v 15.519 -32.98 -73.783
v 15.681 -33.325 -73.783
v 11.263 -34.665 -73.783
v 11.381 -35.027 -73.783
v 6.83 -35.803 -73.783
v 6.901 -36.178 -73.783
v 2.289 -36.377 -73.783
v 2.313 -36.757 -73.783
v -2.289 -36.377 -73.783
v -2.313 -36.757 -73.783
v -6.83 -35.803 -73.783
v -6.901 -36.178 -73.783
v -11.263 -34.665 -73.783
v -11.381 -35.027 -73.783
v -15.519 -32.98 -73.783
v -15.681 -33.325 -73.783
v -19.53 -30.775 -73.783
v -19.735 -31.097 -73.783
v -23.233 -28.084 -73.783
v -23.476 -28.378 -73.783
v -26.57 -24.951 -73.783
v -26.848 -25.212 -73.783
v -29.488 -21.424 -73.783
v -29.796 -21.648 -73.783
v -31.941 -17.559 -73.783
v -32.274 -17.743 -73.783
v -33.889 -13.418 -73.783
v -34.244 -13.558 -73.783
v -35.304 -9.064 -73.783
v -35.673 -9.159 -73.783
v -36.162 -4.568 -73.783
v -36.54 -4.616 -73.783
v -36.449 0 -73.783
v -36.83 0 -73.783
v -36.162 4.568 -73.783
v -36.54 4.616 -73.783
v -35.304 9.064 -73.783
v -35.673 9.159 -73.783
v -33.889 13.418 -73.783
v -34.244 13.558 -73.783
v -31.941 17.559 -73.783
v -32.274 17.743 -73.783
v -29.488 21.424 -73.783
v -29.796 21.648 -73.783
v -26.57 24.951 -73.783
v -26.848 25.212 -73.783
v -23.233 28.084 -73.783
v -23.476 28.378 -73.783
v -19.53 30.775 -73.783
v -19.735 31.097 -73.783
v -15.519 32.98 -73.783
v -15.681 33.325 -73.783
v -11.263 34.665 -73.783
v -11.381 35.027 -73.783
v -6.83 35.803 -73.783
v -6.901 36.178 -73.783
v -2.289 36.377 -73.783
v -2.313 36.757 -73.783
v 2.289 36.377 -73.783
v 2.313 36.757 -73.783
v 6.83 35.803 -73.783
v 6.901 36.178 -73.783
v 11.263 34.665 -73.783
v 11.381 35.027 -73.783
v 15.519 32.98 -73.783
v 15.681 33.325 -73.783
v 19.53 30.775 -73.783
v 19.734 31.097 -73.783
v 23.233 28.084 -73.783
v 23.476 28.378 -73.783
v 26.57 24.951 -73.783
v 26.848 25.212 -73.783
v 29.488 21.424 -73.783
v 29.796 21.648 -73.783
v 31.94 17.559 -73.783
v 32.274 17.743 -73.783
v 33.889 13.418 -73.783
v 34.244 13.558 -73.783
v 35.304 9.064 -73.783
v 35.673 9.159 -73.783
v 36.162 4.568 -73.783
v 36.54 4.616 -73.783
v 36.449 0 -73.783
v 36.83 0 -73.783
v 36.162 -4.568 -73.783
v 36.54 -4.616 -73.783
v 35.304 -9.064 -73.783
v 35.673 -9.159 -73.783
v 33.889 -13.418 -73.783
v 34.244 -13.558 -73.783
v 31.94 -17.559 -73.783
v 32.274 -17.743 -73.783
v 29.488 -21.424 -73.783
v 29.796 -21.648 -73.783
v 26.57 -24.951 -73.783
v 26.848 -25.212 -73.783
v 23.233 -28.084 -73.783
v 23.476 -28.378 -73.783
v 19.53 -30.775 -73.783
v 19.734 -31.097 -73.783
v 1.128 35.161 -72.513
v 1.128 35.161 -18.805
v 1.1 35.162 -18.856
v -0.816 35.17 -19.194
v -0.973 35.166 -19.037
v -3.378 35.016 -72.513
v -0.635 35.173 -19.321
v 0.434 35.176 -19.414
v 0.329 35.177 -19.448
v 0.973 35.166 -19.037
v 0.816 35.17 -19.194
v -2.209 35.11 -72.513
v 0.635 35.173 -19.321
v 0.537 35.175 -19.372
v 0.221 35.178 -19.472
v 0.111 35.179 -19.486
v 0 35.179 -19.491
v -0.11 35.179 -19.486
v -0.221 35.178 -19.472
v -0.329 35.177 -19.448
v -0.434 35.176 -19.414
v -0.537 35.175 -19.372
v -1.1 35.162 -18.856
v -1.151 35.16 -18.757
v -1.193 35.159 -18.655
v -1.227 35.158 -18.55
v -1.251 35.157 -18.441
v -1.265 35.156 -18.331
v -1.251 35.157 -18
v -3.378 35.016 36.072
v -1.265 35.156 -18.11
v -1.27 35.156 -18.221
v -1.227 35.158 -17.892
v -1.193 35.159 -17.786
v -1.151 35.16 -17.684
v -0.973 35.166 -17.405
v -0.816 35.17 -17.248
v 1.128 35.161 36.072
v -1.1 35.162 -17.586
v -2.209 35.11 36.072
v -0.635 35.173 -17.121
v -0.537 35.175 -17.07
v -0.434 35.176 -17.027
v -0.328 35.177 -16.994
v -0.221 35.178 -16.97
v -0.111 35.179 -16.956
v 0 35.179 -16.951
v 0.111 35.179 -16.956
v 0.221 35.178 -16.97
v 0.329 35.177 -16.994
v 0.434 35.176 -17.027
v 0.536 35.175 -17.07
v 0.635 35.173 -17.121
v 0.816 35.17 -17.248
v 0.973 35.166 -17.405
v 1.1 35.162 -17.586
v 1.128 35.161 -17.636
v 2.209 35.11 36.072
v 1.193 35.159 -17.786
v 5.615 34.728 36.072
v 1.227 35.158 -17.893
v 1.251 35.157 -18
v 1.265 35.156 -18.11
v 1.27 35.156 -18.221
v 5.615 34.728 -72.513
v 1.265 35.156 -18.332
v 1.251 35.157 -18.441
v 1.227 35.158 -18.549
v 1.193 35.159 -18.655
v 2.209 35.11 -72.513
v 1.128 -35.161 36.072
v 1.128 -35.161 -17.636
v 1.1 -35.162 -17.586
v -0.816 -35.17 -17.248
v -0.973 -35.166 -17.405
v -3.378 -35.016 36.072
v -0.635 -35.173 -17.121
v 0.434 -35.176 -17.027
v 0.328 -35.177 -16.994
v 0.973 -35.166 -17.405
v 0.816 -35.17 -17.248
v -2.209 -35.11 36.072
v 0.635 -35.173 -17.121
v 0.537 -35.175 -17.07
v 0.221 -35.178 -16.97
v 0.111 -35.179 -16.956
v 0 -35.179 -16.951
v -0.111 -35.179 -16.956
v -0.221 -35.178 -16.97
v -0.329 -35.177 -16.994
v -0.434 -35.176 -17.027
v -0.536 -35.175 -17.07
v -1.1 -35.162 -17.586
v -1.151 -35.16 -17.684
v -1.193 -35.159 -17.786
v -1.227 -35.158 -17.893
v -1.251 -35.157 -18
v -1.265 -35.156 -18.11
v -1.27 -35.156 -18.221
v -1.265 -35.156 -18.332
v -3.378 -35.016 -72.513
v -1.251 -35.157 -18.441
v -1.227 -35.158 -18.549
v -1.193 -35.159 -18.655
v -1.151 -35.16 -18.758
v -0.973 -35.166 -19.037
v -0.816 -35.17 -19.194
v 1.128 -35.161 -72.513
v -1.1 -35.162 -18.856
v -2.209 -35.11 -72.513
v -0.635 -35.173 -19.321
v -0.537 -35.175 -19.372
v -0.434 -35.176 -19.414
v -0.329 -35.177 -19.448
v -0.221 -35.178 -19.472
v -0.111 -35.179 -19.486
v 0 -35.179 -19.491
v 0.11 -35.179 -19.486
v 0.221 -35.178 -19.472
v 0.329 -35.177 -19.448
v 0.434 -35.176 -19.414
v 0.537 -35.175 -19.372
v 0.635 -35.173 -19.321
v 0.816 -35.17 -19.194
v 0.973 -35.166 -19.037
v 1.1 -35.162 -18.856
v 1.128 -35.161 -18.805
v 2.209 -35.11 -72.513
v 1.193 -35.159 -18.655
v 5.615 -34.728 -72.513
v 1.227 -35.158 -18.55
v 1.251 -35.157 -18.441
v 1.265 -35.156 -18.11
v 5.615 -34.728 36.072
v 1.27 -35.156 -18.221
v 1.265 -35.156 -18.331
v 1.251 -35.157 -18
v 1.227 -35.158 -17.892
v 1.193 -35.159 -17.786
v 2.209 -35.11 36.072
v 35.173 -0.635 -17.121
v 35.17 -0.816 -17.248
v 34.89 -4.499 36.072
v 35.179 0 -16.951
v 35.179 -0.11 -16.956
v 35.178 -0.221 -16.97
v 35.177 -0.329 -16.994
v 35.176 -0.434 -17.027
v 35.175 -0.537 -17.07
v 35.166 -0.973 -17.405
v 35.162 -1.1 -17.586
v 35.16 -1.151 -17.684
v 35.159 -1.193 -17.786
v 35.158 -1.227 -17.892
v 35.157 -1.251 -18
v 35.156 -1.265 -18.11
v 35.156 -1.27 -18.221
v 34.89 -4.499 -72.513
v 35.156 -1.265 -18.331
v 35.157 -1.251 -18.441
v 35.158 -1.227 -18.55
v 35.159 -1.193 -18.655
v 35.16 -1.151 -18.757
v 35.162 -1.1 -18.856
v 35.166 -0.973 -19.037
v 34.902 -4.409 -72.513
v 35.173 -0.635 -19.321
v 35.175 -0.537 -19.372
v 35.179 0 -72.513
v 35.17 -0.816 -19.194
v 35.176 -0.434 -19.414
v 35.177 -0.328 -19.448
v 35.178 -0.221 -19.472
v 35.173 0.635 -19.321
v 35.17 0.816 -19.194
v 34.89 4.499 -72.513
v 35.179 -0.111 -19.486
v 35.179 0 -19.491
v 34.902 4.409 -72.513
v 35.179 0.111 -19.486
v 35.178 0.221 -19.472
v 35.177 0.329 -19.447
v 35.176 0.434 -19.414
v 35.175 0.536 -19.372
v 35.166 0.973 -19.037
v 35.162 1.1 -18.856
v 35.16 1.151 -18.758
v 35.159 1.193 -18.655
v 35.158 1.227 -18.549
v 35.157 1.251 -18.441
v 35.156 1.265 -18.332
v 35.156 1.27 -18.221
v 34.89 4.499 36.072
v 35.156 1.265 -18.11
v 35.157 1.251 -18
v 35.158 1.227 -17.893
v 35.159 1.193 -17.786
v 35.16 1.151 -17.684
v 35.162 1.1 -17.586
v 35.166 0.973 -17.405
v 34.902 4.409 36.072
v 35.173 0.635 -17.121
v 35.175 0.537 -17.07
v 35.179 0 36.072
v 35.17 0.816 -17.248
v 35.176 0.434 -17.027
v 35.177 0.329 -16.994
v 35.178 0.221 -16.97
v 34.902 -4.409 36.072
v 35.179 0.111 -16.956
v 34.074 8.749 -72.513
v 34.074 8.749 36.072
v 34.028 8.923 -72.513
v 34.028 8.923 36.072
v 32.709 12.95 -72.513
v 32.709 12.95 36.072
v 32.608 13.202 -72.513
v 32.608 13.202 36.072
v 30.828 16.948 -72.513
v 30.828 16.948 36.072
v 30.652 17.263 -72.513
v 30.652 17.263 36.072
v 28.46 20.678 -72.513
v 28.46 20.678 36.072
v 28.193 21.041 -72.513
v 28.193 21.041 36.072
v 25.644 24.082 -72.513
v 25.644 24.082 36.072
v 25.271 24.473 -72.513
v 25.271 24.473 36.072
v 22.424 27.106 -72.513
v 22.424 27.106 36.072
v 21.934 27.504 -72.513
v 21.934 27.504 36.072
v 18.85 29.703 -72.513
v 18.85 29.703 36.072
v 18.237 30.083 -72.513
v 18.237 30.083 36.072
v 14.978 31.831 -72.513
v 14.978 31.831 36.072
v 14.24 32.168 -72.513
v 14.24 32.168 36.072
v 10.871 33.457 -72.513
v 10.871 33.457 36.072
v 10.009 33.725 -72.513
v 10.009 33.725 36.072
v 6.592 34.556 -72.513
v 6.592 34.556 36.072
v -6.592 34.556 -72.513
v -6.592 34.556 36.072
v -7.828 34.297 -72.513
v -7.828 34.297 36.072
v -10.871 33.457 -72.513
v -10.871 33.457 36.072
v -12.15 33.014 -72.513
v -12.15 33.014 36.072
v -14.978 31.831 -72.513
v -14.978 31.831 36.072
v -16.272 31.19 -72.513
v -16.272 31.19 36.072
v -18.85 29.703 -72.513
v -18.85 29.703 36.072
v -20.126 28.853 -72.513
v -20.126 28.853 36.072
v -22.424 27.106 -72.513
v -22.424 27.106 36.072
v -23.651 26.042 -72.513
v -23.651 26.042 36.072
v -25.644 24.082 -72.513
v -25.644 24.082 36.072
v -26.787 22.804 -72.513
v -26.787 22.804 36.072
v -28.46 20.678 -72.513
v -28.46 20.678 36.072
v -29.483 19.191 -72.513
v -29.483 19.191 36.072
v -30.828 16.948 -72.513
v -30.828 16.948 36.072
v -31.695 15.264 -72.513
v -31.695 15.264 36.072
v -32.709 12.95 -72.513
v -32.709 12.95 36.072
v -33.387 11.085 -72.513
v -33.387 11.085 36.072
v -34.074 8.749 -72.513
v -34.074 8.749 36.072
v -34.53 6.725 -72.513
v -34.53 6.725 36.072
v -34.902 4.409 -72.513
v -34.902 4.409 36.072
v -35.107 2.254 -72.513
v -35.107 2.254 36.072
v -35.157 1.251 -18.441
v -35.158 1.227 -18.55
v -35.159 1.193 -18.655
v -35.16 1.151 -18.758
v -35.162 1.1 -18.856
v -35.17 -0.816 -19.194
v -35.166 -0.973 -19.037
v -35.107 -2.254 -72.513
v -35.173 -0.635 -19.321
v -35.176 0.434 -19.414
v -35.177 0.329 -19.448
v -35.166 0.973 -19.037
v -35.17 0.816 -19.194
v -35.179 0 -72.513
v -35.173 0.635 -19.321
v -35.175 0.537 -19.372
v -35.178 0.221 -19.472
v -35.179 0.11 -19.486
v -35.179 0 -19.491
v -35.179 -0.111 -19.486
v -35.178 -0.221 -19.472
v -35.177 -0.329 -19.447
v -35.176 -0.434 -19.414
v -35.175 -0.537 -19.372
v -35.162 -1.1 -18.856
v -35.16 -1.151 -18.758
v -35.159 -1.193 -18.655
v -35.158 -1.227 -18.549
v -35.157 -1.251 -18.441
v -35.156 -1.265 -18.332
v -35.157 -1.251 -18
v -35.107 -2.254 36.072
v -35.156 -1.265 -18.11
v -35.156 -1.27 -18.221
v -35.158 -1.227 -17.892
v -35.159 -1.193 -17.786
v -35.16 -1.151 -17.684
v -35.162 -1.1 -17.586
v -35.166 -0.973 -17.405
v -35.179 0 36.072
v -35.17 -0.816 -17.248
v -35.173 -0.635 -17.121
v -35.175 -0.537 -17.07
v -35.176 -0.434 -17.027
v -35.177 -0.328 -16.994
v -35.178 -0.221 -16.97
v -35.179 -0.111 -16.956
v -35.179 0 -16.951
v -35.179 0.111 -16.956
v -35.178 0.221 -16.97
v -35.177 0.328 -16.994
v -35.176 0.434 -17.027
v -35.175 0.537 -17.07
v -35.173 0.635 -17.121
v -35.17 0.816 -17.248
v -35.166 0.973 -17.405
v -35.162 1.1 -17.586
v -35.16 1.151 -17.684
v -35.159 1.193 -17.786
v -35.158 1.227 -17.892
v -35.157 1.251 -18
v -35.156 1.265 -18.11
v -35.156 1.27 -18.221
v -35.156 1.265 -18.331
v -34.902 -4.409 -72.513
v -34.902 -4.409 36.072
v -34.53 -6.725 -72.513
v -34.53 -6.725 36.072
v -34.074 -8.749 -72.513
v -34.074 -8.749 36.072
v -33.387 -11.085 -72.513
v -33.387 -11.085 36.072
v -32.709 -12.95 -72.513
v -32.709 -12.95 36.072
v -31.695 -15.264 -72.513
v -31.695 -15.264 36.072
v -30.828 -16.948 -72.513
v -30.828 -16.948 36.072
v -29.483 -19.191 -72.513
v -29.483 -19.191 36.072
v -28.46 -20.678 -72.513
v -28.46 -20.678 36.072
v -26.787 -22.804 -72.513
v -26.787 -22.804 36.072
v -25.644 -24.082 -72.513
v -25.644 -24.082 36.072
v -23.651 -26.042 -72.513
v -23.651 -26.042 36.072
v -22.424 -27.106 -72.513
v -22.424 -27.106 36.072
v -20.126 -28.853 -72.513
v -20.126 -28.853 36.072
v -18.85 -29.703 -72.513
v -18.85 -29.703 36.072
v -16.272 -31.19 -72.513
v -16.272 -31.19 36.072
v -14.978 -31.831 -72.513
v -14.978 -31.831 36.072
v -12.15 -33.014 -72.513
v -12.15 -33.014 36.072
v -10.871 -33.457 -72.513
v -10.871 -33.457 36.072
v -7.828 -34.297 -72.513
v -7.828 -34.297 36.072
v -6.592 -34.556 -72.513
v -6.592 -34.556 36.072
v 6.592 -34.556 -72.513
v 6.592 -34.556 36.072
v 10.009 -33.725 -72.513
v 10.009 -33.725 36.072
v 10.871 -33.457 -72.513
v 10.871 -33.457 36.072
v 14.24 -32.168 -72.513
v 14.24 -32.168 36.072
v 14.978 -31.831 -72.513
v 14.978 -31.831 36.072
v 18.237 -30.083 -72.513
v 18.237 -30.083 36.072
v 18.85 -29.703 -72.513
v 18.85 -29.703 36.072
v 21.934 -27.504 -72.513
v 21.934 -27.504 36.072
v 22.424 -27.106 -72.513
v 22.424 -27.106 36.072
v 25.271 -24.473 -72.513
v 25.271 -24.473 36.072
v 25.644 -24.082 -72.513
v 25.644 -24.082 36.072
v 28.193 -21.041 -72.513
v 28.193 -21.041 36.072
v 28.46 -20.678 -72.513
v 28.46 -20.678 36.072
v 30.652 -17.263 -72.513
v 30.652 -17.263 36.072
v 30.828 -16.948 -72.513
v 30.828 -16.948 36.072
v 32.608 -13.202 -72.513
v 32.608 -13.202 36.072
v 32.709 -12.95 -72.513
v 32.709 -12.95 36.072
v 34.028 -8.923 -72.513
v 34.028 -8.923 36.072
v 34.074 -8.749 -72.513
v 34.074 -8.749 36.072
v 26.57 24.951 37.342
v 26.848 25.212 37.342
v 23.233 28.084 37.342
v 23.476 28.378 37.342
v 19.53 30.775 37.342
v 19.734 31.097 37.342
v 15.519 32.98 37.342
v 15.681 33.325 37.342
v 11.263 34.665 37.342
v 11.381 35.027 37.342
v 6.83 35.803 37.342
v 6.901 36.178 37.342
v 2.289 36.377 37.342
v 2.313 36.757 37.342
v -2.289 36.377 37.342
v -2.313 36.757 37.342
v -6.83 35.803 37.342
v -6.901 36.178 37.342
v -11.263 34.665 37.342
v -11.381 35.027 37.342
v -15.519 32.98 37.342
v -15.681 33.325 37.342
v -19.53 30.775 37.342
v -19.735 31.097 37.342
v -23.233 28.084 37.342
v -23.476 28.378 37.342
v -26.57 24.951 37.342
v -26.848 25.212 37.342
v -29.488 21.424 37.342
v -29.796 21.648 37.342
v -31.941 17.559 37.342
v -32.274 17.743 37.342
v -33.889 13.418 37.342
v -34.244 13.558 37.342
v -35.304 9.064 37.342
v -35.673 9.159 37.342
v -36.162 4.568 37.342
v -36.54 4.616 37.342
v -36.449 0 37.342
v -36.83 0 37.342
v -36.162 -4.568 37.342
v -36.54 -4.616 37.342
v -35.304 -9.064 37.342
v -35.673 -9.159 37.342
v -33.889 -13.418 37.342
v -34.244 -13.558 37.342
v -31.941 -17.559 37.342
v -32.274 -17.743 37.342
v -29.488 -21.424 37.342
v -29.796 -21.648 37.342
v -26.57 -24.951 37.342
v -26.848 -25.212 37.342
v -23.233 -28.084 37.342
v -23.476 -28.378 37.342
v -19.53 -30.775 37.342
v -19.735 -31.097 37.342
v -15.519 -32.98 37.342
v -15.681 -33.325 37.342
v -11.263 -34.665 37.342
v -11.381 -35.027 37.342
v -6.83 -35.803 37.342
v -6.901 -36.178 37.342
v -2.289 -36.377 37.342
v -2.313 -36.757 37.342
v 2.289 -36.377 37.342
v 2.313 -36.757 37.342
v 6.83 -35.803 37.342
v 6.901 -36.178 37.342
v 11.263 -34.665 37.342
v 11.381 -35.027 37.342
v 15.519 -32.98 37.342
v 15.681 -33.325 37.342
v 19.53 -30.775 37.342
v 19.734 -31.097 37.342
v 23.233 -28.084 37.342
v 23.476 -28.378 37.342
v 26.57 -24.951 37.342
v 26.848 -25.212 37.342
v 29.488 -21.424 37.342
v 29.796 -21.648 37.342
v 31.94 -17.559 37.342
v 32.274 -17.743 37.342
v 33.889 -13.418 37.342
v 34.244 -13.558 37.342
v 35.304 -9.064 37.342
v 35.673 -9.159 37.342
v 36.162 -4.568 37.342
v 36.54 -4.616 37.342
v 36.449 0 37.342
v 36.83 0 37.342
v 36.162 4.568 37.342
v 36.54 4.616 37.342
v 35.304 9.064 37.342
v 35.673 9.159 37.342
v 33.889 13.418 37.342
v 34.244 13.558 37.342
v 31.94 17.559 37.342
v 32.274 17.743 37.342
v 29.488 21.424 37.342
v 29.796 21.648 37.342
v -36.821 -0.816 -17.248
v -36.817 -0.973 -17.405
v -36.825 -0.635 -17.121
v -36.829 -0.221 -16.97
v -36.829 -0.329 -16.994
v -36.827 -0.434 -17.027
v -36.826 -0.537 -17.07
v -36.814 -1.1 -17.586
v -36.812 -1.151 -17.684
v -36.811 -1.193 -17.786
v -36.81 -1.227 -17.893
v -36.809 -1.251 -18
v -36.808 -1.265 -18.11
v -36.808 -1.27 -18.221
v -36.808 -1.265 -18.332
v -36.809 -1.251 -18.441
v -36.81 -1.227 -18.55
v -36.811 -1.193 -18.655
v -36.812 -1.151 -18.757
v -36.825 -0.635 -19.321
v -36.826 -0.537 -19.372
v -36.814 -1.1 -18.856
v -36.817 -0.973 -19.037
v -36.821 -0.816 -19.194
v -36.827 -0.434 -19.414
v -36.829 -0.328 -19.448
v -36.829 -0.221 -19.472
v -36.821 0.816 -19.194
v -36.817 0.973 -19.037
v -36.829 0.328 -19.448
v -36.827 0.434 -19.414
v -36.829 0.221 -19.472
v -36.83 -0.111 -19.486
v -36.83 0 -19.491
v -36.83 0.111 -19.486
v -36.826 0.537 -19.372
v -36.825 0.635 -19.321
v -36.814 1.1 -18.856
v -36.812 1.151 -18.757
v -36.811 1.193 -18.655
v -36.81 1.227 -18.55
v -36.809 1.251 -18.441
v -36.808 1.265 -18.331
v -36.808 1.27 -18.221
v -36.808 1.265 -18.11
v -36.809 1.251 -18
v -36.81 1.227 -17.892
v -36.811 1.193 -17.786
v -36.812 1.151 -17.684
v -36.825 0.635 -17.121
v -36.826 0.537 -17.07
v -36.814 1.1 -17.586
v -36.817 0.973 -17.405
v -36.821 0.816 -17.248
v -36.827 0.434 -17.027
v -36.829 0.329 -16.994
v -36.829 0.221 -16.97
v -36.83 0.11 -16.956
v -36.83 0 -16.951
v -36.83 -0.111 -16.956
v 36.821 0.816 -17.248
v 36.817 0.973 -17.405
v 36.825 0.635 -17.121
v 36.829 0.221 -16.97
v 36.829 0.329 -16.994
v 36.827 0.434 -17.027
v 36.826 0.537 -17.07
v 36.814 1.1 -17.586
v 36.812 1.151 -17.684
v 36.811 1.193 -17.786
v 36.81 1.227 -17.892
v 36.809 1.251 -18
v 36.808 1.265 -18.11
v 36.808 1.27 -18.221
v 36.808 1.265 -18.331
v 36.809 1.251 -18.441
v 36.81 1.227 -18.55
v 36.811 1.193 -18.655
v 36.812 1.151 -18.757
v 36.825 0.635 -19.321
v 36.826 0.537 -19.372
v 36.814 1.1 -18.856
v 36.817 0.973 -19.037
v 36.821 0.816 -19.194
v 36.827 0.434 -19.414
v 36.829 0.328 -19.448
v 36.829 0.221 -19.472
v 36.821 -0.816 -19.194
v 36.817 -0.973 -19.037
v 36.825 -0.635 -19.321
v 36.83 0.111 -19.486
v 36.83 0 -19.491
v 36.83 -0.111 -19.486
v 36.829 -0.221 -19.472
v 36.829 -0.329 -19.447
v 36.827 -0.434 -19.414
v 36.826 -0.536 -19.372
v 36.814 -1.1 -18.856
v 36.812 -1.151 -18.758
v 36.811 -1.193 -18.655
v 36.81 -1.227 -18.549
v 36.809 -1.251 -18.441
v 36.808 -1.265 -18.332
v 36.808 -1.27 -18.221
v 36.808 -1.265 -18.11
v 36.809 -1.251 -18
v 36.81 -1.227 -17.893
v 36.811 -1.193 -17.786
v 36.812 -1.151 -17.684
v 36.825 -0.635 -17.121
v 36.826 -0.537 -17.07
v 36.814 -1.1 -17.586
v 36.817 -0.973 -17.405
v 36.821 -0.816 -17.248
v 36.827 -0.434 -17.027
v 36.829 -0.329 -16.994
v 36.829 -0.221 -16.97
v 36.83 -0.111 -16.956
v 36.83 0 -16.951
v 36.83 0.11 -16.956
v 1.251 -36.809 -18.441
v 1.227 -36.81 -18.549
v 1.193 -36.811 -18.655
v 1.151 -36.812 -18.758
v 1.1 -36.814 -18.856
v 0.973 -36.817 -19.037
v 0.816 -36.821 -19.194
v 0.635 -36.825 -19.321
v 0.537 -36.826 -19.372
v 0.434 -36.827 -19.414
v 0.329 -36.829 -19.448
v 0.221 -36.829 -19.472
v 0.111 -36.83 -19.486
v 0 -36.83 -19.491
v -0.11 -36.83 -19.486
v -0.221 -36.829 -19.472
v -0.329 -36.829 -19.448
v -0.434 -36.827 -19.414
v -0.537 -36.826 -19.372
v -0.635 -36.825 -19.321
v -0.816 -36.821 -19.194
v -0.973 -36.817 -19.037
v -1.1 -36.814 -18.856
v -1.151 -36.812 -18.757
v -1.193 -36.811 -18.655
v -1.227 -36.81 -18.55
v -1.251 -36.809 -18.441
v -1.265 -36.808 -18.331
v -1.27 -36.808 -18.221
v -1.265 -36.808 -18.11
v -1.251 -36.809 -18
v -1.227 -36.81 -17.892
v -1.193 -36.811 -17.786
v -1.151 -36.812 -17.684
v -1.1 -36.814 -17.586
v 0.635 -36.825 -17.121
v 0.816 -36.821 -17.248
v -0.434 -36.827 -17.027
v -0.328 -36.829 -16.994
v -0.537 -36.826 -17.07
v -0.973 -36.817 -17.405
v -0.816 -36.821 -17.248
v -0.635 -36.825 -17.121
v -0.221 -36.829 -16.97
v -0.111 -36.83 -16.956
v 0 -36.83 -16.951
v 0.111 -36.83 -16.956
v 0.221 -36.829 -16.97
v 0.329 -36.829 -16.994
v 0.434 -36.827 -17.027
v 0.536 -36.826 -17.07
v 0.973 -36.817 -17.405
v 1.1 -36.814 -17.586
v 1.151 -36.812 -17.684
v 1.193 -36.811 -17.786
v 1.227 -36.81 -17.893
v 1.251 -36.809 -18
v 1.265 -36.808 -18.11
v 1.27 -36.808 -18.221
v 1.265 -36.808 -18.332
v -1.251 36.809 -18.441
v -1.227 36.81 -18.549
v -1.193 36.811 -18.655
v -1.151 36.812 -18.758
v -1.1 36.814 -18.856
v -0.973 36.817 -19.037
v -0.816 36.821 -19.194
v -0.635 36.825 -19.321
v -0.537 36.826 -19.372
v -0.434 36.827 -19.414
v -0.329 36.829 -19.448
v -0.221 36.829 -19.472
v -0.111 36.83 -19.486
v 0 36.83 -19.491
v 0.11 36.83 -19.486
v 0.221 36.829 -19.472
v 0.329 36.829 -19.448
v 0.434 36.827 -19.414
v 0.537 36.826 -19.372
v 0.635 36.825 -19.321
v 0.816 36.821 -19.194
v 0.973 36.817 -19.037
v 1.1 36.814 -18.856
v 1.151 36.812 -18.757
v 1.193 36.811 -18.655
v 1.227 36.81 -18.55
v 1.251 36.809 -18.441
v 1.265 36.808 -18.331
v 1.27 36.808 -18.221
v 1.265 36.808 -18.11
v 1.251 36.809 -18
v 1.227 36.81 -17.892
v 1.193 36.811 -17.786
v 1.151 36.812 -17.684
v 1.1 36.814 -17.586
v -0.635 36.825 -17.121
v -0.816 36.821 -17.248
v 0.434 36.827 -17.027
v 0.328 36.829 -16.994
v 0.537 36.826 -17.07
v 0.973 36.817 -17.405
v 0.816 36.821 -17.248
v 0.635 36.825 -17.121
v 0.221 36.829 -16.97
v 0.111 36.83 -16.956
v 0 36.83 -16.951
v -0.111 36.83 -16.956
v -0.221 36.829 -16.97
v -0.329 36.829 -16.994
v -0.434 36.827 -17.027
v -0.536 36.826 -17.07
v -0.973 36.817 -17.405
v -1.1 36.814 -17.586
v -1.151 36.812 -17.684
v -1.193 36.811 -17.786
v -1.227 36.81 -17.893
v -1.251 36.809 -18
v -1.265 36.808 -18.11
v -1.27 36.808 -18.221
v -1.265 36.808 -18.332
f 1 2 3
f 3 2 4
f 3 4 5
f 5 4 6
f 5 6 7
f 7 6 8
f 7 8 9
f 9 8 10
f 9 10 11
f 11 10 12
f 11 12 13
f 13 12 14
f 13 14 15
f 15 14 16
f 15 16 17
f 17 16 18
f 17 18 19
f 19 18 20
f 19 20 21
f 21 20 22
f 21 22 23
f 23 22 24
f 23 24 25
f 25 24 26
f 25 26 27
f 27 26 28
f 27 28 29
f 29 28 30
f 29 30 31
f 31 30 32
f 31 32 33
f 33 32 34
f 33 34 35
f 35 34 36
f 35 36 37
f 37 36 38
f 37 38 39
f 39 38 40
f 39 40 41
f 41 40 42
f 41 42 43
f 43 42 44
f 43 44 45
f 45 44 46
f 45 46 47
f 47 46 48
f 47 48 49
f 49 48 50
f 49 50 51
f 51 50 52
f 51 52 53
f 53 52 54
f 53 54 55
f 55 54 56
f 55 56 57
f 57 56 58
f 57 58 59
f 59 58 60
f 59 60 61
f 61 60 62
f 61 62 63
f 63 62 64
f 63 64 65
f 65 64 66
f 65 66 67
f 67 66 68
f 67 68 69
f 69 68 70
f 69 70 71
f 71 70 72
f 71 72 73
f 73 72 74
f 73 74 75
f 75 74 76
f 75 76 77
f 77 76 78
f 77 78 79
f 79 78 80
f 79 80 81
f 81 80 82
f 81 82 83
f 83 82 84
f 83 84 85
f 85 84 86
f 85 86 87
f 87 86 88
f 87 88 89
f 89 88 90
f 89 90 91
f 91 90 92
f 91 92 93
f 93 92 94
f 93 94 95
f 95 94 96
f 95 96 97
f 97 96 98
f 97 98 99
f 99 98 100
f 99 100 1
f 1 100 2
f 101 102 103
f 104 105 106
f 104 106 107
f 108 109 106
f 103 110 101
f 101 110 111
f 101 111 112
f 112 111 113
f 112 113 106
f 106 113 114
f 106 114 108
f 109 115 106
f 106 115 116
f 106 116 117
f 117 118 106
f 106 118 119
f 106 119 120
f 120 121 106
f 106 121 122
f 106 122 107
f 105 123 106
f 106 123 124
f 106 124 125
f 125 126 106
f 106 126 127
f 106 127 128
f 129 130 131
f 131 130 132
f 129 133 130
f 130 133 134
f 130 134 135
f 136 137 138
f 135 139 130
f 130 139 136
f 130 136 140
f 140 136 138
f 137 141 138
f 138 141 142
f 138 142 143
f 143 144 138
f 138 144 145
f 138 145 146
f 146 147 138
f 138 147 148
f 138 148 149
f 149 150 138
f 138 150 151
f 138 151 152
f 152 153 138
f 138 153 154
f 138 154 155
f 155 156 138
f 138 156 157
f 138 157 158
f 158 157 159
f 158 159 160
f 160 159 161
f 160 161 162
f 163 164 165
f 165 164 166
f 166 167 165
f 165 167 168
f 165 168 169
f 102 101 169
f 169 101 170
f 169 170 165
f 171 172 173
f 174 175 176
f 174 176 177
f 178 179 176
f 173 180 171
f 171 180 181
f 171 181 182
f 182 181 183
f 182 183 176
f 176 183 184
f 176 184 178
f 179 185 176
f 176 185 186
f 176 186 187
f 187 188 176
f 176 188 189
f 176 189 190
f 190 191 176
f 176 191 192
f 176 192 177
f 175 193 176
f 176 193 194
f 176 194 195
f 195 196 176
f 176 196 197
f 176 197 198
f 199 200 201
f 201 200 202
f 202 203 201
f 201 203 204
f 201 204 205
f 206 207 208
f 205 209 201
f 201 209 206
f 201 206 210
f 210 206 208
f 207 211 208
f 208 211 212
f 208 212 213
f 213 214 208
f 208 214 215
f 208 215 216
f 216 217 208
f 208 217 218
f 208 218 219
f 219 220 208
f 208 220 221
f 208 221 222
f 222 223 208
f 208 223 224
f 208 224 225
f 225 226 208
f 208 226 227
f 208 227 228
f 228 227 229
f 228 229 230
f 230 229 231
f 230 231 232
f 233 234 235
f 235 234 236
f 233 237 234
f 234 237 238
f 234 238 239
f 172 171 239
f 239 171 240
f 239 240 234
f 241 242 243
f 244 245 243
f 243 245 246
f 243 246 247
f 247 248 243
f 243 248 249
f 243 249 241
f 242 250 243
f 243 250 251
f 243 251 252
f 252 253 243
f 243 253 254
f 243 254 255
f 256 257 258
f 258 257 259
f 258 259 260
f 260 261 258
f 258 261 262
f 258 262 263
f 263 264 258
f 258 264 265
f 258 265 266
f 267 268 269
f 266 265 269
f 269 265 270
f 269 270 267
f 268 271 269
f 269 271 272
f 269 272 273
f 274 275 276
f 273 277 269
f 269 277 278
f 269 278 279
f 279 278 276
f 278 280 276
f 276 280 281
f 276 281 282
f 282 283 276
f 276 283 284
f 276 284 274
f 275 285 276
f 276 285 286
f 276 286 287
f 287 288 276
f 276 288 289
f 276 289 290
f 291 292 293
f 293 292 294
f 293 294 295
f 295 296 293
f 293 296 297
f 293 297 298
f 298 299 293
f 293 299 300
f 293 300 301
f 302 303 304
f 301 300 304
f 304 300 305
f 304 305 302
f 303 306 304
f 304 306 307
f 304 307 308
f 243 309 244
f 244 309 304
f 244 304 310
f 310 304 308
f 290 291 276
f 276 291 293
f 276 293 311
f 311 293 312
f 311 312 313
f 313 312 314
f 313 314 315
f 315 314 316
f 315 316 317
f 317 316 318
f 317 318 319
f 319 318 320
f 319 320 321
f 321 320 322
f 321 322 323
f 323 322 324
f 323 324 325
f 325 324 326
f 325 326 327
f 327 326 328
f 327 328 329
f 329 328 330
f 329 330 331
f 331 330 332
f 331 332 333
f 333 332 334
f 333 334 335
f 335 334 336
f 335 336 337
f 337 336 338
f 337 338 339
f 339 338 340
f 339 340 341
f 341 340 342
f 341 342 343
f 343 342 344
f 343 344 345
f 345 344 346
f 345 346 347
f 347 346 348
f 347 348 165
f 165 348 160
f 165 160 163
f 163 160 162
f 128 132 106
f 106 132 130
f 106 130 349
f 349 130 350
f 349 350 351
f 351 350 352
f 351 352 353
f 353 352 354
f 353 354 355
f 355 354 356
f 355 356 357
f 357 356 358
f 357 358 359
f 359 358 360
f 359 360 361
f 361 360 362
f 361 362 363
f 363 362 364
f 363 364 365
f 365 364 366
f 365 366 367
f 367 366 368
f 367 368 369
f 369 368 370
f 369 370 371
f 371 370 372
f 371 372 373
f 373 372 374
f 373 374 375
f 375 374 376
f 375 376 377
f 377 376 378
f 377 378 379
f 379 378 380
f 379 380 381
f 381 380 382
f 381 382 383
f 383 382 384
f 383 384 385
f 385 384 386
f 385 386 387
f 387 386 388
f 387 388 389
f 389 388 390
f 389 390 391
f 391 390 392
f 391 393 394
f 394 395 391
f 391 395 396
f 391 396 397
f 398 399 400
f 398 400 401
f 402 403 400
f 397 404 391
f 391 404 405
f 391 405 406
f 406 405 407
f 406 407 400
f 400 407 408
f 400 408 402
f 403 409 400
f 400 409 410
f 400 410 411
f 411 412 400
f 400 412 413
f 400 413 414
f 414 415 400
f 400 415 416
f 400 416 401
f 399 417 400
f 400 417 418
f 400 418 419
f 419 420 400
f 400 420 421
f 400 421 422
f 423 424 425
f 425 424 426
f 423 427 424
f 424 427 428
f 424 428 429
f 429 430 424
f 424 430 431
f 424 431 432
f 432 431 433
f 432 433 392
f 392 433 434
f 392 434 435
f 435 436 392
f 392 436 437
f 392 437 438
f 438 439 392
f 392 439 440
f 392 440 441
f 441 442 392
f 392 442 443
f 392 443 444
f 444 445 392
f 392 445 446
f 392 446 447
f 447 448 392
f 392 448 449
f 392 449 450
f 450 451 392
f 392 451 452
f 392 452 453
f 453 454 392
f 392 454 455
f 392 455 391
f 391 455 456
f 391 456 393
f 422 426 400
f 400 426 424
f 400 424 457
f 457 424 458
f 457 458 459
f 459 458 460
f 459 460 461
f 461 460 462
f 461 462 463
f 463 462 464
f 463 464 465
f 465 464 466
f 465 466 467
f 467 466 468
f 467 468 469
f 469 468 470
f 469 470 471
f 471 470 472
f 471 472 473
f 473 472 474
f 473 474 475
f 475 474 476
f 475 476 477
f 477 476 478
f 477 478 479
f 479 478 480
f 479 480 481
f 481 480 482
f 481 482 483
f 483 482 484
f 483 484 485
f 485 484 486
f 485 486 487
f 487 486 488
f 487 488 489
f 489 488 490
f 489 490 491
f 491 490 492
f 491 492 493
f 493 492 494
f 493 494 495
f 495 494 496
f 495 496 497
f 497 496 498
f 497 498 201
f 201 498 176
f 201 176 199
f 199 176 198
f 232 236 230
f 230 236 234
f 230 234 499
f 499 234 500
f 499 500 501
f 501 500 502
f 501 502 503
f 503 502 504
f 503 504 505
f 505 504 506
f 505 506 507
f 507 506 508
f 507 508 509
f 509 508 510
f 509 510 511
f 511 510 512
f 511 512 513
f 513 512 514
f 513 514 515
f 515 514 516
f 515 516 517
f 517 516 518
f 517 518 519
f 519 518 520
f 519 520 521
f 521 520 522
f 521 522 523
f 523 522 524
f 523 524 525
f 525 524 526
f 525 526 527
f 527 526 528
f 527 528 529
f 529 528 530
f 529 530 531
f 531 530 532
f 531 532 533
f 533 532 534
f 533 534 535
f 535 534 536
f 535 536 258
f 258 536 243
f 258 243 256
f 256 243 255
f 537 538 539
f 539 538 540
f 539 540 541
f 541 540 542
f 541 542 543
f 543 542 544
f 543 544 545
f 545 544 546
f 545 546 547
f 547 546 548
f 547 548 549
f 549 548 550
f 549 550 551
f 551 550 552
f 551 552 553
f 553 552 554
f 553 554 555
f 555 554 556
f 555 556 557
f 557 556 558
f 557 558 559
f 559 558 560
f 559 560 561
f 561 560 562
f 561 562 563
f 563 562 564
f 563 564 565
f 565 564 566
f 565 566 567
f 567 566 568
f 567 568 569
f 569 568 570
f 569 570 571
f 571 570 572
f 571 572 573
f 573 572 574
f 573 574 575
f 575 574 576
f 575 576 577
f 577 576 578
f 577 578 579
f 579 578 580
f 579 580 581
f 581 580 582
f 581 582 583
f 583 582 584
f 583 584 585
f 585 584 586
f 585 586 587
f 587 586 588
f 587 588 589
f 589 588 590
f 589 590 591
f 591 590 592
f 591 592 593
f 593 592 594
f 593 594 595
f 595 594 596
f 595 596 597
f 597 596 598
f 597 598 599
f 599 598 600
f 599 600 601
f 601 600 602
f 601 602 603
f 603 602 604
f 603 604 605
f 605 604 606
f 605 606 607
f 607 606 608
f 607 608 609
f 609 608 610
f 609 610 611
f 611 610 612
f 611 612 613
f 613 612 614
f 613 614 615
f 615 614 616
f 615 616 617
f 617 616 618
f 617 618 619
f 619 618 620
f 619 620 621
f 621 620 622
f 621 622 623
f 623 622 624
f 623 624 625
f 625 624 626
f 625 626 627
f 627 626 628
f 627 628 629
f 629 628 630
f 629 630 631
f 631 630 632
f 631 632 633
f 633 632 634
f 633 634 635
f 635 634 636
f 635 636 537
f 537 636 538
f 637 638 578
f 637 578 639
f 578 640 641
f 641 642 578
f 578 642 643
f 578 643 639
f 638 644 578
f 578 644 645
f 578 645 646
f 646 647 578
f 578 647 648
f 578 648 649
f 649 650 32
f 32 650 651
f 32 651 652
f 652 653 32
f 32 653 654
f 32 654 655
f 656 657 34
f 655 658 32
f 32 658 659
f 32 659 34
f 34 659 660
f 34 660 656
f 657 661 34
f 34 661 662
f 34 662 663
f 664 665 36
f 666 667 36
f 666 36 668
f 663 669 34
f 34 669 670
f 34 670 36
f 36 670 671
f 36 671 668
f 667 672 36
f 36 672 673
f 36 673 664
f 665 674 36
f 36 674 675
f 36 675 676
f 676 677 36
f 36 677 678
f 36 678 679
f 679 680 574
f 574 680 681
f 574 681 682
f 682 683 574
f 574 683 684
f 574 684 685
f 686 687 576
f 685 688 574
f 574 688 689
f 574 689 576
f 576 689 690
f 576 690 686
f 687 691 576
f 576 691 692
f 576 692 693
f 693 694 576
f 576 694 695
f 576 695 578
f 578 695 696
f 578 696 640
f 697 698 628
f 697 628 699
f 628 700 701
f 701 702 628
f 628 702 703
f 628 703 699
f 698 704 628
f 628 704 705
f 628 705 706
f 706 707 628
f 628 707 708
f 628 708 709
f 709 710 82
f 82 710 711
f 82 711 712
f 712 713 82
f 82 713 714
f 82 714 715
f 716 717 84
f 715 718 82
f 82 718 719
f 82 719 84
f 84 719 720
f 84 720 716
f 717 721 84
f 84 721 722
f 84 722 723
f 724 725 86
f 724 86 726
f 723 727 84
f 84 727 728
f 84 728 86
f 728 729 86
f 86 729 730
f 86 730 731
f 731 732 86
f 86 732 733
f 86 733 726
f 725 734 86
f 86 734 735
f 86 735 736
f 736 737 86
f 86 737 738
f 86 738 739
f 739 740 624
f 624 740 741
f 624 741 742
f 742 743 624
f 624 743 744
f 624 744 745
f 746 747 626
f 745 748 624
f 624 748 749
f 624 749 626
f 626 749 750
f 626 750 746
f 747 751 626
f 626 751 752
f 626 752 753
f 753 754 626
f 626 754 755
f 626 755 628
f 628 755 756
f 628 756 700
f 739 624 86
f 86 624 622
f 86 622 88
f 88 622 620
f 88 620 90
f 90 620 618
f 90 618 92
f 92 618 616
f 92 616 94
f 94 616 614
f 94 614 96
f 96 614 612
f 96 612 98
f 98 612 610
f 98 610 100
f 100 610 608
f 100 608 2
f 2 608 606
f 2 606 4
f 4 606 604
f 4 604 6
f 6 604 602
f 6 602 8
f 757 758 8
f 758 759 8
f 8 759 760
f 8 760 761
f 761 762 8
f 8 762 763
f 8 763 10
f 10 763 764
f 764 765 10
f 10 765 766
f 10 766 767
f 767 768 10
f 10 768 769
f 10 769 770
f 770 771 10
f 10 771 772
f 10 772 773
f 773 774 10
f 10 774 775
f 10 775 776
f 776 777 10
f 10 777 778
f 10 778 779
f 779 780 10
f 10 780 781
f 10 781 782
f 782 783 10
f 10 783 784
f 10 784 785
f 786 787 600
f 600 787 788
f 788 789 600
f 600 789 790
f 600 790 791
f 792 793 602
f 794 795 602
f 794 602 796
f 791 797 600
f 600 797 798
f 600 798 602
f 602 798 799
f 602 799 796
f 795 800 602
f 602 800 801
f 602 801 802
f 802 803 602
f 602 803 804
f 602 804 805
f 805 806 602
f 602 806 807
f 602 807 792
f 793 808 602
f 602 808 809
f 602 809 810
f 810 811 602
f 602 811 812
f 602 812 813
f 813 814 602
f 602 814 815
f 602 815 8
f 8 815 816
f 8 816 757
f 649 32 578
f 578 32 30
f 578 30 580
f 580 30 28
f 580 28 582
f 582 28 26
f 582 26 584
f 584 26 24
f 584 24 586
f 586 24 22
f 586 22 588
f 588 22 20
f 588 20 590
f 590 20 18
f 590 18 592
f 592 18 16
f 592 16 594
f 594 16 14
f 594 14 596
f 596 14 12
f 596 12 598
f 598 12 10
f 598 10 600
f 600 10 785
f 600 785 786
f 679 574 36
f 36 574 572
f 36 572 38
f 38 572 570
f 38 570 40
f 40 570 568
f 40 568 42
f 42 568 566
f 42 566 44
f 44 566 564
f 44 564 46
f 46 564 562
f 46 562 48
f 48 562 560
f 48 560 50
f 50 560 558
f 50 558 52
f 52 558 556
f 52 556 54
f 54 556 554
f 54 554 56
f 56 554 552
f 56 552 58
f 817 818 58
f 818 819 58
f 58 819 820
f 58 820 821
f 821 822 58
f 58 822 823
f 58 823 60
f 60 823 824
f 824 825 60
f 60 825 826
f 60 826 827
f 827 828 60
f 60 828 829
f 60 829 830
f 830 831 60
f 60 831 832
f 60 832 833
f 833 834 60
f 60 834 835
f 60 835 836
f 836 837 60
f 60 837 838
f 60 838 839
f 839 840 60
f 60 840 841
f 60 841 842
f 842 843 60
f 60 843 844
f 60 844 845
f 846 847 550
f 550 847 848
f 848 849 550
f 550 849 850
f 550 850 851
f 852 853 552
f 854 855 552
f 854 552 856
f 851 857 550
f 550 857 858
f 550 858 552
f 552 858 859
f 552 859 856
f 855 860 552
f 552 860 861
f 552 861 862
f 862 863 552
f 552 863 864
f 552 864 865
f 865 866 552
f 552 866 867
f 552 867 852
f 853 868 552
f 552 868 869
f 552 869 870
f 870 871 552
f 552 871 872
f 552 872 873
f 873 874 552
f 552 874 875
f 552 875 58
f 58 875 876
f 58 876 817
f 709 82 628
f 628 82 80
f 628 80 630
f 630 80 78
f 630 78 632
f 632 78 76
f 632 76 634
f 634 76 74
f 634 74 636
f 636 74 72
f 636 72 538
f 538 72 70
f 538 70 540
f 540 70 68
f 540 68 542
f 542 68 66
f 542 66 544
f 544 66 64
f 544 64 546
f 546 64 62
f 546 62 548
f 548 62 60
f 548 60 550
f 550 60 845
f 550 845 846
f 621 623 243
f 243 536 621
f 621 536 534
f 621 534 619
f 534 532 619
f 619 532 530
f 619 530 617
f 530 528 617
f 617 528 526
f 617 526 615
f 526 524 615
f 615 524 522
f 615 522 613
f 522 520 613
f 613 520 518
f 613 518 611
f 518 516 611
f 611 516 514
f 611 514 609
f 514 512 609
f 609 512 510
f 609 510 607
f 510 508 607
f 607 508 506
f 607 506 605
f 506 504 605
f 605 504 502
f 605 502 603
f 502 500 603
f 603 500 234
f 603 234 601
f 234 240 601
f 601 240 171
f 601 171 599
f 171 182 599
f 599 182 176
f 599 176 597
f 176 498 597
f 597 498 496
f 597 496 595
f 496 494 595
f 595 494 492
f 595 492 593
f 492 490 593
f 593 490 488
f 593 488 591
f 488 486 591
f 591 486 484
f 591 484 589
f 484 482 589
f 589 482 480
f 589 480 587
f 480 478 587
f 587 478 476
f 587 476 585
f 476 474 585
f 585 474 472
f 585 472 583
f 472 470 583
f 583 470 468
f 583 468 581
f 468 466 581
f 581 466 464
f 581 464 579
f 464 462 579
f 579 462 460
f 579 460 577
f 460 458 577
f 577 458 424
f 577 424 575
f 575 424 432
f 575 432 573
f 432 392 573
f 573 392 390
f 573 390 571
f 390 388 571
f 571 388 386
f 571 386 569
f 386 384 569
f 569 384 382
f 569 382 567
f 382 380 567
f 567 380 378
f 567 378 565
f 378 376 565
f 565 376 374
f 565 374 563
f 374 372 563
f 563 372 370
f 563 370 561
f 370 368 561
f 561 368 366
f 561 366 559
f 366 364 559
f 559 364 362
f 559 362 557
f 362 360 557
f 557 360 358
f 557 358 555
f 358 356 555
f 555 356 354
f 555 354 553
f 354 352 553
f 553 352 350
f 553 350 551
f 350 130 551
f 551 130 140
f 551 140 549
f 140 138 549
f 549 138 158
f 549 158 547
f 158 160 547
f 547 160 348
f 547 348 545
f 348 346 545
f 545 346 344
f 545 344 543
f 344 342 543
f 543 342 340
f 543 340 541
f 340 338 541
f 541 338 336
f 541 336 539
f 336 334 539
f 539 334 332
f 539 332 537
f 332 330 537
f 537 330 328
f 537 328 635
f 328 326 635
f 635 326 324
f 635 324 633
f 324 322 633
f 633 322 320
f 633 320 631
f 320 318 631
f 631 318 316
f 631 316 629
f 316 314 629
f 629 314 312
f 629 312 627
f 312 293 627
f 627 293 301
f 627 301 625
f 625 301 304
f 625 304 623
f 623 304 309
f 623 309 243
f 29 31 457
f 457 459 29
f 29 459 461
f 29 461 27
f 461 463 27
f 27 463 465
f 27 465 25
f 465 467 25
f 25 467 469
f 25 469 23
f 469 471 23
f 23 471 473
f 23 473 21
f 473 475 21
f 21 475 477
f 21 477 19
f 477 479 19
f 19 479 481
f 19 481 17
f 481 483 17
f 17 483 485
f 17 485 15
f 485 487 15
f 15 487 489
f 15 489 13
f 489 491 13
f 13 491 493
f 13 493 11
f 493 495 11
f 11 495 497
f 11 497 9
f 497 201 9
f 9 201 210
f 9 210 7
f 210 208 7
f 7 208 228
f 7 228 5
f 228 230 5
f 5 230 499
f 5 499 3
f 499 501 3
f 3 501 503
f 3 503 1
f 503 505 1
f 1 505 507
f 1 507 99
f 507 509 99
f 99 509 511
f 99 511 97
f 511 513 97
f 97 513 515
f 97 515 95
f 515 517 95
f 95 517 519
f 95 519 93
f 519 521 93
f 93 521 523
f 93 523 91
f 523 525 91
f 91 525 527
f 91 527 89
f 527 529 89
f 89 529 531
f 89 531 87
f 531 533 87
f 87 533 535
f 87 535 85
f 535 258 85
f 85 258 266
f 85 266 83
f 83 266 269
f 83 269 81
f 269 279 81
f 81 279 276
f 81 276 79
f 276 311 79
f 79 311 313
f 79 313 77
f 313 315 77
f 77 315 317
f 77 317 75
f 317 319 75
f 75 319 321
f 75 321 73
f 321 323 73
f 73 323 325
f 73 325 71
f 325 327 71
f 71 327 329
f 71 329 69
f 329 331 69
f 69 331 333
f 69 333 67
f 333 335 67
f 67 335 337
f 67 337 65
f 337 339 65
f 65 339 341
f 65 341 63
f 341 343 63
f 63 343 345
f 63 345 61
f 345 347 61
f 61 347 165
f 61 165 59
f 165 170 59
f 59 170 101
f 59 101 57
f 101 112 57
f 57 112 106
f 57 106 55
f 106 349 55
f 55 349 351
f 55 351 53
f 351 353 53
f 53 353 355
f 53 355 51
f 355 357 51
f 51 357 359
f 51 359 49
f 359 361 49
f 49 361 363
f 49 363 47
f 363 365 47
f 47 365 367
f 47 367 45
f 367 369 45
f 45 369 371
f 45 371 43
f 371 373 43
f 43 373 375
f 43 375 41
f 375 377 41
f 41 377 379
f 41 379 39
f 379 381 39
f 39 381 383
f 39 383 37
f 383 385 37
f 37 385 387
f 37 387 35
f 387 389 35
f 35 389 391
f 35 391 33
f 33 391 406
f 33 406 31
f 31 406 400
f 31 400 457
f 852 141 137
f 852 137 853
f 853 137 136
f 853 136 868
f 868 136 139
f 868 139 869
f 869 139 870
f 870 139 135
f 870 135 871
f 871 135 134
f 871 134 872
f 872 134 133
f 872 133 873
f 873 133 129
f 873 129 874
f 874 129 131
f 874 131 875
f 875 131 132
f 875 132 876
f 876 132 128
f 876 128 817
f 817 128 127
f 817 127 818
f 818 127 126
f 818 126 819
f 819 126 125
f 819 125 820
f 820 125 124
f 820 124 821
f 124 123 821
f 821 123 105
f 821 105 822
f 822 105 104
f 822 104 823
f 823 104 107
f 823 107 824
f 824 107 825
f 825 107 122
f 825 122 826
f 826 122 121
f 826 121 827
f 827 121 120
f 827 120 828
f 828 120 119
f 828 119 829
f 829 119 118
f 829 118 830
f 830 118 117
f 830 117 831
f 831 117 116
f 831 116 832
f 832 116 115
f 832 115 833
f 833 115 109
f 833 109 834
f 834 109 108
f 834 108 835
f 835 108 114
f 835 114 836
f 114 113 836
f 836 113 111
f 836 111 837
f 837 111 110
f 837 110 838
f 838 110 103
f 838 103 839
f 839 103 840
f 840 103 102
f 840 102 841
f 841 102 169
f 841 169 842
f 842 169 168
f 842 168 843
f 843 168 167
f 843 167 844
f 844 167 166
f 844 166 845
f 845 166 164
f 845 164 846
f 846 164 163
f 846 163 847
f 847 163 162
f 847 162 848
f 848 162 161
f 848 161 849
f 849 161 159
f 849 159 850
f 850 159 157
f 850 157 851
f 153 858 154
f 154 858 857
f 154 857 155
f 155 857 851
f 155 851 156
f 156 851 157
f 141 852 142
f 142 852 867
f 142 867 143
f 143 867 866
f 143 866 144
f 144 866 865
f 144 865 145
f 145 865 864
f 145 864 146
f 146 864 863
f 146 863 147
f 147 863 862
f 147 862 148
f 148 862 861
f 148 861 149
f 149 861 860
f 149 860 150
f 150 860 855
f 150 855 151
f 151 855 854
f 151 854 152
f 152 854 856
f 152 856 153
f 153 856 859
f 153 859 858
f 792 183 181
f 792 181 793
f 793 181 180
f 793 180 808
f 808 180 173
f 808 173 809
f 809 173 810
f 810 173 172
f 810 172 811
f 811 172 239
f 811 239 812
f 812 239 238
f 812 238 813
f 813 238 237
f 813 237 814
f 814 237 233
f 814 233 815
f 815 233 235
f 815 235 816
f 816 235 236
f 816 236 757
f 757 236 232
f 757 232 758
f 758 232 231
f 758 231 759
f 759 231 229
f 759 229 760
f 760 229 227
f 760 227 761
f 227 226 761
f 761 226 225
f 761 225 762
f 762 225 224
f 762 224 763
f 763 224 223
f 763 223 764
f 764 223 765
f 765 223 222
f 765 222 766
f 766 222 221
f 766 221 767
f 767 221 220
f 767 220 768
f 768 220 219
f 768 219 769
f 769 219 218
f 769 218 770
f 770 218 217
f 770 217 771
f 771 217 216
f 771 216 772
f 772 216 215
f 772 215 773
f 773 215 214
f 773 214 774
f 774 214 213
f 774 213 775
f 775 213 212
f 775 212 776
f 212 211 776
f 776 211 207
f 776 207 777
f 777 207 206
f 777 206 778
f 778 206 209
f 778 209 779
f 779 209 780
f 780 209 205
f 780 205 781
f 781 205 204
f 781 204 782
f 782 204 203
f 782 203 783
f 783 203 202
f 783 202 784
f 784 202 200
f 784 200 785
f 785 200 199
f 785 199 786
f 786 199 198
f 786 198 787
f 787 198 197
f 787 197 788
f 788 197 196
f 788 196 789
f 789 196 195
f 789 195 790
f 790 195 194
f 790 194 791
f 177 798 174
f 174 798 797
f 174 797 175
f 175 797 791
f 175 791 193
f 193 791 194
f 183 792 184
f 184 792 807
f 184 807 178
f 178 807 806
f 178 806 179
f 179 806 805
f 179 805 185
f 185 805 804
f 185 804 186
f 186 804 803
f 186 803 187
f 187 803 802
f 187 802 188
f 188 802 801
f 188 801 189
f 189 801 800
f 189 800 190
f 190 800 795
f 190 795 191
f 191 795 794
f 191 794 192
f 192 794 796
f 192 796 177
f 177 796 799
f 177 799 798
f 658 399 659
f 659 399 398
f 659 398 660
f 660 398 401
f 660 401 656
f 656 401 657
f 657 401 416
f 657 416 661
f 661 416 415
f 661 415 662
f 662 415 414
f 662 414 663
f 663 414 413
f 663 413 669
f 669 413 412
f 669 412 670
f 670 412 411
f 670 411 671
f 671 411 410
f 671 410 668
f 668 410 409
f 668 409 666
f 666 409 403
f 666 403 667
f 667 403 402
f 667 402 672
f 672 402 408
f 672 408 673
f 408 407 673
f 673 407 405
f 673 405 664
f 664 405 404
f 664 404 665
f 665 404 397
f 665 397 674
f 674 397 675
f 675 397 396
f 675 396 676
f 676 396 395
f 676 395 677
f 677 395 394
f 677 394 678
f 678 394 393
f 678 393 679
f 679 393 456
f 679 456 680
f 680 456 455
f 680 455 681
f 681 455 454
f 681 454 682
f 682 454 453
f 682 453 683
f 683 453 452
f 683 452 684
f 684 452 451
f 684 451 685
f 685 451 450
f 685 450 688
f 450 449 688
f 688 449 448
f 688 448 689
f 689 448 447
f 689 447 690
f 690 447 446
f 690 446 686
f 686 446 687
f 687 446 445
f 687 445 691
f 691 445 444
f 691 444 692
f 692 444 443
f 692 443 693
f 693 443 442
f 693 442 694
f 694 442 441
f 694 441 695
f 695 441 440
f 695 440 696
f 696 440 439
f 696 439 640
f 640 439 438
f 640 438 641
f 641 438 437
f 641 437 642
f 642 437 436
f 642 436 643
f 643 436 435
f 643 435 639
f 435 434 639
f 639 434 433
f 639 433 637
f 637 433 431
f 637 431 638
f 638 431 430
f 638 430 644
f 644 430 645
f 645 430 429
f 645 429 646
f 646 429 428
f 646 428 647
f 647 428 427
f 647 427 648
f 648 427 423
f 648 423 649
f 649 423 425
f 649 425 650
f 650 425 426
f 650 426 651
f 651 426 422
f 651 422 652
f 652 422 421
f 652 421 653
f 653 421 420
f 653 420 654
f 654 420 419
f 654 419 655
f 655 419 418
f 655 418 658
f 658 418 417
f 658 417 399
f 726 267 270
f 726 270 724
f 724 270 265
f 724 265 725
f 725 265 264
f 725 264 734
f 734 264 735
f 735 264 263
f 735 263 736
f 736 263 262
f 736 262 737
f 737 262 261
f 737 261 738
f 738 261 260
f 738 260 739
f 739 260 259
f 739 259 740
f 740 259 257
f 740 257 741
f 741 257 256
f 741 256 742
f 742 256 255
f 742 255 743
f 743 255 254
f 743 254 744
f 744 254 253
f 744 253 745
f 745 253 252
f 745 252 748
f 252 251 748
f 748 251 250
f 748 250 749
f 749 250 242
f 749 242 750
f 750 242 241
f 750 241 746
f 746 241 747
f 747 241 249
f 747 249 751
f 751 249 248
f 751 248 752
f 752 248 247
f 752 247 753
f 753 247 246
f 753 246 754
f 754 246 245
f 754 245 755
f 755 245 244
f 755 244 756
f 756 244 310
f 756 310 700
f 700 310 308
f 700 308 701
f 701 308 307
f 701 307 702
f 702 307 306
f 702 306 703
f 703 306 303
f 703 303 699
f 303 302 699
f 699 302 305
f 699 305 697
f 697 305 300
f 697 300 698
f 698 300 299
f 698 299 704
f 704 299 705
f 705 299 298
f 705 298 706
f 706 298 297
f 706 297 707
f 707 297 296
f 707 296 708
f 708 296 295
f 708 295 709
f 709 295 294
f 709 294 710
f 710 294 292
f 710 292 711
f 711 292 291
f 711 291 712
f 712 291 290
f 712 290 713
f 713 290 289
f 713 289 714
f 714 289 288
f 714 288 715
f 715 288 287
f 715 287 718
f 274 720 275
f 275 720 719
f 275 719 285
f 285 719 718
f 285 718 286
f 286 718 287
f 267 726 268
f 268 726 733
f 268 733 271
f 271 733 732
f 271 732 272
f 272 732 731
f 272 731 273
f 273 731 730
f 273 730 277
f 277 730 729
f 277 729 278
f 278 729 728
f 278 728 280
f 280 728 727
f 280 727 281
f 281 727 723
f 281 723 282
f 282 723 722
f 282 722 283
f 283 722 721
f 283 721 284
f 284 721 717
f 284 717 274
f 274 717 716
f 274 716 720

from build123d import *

# Parameters (mm, degrees)
SKETCH1_W         = 1.651
SKETCH1_H         = 111.125
CHAMFER1_SIZE     = 1.27
SKETCH3_R         = 1.27
VENTHOLES_DEPTH   = 91.315461444
CIRPATTERN1_COUNT = 2
CIRPATTERN1_ANGLE = 90


with BuildPart() as part:
    # Sketch1 → Revolve1 (revolve)
    with BuildSketch(Plane(origin=(0, 0, 0), x_dir=(1, 0, 0), z_dir=(0, 1, 0))):
        with Locations((36.0045, 18.220863815)):
            Rectangle(SKETCH1_W, SKETCH1_H)
    revolve(axis=Axis((0, 0, 37.341636185), (0, 0, -1)))

    # Chamfer1
    chamfer1_edges = [part.edges().sort_by_distance(p)[0] for p in [
        (-35.179, 0, 37.341636185),
        (-35.179, 0, -73.783363815),
    ]]
    chamfer(chamfer1_edges, length=CHAMFER1_SIZE)

    # Sketch3 → ventholes (cut, symmetric)
    with BuildSketch(Plane(origin=(0, 0, 0), x_dir=(1, 0, 0), z_dir=(0, 1, 0))):
        with Locations(Location((0, 18.220863815, 0), (0, 0, 270))):
            Circle(SKETCH3_R)
    ventholes = extrude(amount=VENTHOLES_DEPTH, both=True, mode=Mode.SUBTRACT)

    # CirPattern1: ventholes ×2 about axis
    cirpattern1_axis = Axis((0, 0, 37.341636185), (0, 0, 1))
    for i in range(1, CIRPATTERN1_COUNT):
        add(ventholes.rotate(cirpattern1_axis, i * CIRPATTERN1_ANGLE / (CIRPATTERN1_COUNT - 1)), mode=Mode.SUBTRACT)


solid = part.part
